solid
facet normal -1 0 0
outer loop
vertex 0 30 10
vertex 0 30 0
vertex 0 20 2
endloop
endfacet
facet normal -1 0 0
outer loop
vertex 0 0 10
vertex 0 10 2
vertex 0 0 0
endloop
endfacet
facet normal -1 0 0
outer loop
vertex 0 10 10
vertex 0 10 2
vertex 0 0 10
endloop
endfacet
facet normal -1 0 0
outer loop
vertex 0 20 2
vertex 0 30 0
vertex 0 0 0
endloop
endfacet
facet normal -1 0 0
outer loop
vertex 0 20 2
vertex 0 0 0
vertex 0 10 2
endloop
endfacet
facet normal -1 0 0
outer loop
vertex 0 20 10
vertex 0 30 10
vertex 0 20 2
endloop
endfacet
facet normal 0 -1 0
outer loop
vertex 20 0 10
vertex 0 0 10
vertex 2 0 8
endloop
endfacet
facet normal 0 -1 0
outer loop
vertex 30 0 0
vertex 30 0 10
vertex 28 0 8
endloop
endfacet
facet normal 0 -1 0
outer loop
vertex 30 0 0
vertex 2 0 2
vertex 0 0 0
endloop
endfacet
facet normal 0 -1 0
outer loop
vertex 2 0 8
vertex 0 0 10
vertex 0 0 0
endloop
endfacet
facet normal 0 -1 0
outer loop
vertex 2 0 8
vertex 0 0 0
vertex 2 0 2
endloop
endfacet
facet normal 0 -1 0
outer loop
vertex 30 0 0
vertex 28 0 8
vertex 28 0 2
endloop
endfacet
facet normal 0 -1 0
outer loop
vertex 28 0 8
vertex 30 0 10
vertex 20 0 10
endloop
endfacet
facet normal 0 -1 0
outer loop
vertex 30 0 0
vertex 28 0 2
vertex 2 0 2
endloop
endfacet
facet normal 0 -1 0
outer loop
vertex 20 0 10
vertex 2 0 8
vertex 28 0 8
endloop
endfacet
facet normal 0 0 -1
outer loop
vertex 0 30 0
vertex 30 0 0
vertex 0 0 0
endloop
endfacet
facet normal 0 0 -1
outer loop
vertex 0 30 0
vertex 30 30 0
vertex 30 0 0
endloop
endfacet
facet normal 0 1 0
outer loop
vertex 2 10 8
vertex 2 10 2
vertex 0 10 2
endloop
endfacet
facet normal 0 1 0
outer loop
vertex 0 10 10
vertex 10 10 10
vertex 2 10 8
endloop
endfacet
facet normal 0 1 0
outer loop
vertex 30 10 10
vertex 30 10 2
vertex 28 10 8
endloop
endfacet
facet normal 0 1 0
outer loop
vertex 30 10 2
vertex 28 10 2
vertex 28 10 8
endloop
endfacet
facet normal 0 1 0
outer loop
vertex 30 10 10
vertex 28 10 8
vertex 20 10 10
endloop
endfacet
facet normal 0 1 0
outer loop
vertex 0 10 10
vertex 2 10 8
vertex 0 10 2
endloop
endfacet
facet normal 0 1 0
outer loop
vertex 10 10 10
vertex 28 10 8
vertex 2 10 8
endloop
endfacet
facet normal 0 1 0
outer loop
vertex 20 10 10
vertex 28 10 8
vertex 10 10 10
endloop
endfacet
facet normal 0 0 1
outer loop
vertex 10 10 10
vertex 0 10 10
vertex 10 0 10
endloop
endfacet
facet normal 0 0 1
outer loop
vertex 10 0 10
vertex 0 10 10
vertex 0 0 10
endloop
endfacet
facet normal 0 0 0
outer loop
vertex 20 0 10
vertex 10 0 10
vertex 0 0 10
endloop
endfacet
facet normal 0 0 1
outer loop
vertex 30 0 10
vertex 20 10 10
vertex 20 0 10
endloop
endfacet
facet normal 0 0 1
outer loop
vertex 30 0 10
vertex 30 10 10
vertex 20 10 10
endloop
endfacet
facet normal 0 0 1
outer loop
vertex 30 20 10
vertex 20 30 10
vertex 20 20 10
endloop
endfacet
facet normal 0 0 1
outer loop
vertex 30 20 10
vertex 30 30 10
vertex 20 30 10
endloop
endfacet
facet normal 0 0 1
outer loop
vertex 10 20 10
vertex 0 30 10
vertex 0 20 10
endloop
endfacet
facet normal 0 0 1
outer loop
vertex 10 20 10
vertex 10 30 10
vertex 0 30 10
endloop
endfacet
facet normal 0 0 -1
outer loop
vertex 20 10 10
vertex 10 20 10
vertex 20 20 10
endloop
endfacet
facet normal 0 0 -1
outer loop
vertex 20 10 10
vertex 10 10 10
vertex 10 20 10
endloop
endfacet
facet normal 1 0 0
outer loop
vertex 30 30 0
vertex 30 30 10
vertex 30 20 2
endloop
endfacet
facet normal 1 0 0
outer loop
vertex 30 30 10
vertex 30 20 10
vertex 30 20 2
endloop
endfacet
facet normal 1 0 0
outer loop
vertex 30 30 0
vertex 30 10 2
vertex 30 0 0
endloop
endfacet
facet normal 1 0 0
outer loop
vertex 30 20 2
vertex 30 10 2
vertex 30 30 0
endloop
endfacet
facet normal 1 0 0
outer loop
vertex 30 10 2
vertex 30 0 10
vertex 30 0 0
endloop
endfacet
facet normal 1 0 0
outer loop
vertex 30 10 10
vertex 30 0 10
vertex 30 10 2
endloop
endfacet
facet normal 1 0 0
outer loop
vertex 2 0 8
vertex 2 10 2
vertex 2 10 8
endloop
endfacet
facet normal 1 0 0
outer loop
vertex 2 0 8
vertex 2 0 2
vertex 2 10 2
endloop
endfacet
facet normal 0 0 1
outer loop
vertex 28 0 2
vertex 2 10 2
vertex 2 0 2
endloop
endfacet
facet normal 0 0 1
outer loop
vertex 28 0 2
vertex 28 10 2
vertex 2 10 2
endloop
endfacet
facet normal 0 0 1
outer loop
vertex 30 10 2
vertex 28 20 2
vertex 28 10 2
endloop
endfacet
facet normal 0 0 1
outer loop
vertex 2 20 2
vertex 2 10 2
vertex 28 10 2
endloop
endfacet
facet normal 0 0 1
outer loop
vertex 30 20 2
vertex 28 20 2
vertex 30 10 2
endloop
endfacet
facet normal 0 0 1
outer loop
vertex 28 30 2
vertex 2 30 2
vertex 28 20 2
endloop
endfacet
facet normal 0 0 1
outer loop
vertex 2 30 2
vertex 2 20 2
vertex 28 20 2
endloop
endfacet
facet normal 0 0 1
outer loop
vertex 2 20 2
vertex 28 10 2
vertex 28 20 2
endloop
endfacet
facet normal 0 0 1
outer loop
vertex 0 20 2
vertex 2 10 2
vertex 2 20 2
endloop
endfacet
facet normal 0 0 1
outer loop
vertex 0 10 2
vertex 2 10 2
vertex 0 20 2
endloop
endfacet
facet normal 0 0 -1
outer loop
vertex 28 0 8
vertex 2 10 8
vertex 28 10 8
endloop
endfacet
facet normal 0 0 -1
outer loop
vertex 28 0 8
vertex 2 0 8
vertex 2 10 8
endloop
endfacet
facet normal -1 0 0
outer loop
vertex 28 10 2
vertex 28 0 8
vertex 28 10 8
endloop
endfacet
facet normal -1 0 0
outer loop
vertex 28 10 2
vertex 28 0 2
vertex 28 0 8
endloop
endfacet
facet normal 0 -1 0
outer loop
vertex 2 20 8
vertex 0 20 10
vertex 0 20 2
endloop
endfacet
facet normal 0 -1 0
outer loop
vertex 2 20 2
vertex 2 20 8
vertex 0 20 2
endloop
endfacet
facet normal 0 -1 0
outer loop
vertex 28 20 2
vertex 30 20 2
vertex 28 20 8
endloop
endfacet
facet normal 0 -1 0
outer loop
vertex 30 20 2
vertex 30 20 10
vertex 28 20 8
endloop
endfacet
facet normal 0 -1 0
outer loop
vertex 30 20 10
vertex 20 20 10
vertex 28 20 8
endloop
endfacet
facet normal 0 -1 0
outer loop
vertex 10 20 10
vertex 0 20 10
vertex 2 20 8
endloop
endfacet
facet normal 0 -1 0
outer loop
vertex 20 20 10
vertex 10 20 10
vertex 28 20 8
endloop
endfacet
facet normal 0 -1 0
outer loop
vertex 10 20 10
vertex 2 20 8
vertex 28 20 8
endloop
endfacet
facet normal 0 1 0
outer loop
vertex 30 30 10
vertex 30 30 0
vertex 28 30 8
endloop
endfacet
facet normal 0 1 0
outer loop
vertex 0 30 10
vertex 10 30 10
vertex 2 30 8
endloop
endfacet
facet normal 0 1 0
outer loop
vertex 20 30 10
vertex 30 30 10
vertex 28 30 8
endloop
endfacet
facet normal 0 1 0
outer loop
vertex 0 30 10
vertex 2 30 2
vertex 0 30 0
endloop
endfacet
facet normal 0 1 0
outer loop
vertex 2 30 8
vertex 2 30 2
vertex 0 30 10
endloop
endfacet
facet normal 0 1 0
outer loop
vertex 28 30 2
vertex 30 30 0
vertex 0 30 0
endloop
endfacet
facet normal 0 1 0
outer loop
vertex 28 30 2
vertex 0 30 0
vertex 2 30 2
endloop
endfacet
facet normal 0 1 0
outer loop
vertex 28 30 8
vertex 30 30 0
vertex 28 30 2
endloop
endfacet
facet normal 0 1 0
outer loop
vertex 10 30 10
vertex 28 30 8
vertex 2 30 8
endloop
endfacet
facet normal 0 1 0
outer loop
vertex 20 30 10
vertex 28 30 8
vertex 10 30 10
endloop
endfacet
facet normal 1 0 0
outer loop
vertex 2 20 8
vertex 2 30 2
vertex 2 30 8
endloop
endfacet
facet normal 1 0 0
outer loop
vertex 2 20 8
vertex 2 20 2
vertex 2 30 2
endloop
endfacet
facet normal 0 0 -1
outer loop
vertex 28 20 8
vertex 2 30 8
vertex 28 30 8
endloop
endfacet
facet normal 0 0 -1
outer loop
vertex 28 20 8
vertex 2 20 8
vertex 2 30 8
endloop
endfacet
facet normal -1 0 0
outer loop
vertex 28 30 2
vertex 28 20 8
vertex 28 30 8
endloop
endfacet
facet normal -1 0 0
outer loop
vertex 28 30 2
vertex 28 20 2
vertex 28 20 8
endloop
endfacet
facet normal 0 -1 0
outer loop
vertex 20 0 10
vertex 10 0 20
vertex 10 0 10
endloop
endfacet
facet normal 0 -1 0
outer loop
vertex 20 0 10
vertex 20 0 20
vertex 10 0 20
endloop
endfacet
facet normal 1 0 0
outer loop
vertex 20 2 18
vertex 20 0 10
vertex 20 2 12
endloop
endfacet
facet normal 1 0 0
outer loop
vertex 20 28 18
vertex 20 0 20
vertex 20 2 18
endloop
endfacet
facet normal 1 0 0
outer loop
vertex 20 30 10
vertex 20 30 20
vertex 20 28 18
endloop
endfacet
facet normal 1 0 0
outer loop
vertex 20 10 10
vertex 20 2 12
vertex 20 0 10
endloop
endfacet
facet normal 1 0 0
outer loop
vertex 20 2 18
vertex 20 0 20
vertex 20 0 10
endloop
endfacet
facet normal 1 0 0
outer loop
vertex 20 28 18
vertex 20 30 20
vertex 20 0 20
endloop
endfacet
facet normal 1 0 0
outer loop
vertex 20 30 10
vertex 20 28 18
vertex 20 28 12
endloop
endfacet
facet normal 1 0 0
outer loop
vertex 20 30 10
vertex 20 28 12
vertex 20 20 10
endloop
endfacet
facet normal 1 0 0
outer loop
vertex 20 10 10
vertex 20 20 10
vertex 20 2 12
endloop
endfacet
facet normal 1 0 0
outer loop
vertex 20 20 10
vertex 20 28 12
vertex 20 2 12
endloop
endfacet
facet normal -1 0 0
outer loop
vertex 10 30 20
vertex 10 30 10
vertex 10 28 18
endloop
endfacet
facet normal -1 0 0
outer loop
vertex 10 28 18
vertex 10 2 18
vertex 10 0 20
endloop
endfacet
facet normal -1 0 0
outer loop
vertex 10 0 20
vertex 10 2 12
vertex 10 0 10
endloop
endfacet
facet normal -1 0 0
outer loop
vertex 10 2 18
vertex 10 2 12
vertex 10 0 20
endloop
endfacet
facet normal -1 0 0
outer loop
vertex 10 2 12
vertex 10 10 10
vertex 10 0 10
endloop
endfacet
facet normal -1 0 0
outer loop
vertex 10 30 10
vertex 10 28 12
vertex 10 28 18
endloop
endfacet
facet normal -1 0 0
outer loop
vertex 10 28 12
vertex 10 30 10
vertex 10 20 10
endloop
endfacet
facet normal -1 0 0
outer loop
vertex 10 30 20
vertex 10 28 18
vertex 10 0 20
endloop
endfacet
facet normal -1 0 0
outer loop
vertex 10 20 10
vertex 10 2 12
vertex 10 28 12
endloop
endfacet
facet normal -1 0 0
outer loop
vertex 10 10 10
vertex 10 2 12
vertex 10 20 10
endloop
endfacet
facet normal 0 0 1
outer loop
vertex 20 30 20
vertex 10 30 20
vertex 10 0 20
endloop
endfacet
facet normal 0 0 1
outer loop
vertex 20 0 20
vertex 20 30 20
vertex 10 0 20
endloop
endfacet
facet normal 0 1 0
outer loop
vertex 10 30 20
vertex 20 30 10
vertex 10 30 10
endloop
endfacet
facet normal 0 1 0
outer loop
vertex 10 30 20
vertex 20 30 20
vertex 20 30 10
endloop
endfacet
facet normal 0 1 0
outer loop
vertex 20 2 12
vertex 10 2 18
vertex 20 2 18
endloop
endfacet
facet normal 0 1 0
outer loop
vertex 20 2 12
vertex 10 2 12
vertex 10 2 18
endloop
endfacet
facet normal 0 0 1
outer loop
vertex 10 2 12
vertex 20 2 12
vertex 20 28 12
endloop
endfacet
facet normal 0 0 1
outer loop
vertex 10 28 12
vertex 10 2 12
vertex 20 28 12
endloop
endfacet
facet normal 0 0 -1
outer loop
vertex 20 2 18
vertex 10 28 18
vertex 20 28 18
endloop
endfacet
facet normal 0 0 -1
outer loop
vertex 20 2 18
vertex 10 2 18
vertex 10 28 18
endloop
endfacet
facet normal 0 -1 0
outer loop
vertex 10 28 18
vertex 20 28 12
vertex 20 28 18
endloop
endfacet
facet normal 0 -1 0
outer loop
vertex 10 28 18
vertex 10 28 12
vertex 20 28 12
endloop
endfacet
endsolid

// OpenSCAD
cube([30,30,2]);
difference()
{
    cube([30,10,10]);
    translate([2,-1,2])cube([26,12,6]);
}

translate([0,20,0])
difference()
{
    cube([30,10,10]);
    translate([2,-1,2])cube([26,12,6]);
}

translate([20,0,10])
rotate([0,0,90])
difference()
{
    cube([30,10,10]);
    translate([2,-1,2])cube([26,12,6]);
}
